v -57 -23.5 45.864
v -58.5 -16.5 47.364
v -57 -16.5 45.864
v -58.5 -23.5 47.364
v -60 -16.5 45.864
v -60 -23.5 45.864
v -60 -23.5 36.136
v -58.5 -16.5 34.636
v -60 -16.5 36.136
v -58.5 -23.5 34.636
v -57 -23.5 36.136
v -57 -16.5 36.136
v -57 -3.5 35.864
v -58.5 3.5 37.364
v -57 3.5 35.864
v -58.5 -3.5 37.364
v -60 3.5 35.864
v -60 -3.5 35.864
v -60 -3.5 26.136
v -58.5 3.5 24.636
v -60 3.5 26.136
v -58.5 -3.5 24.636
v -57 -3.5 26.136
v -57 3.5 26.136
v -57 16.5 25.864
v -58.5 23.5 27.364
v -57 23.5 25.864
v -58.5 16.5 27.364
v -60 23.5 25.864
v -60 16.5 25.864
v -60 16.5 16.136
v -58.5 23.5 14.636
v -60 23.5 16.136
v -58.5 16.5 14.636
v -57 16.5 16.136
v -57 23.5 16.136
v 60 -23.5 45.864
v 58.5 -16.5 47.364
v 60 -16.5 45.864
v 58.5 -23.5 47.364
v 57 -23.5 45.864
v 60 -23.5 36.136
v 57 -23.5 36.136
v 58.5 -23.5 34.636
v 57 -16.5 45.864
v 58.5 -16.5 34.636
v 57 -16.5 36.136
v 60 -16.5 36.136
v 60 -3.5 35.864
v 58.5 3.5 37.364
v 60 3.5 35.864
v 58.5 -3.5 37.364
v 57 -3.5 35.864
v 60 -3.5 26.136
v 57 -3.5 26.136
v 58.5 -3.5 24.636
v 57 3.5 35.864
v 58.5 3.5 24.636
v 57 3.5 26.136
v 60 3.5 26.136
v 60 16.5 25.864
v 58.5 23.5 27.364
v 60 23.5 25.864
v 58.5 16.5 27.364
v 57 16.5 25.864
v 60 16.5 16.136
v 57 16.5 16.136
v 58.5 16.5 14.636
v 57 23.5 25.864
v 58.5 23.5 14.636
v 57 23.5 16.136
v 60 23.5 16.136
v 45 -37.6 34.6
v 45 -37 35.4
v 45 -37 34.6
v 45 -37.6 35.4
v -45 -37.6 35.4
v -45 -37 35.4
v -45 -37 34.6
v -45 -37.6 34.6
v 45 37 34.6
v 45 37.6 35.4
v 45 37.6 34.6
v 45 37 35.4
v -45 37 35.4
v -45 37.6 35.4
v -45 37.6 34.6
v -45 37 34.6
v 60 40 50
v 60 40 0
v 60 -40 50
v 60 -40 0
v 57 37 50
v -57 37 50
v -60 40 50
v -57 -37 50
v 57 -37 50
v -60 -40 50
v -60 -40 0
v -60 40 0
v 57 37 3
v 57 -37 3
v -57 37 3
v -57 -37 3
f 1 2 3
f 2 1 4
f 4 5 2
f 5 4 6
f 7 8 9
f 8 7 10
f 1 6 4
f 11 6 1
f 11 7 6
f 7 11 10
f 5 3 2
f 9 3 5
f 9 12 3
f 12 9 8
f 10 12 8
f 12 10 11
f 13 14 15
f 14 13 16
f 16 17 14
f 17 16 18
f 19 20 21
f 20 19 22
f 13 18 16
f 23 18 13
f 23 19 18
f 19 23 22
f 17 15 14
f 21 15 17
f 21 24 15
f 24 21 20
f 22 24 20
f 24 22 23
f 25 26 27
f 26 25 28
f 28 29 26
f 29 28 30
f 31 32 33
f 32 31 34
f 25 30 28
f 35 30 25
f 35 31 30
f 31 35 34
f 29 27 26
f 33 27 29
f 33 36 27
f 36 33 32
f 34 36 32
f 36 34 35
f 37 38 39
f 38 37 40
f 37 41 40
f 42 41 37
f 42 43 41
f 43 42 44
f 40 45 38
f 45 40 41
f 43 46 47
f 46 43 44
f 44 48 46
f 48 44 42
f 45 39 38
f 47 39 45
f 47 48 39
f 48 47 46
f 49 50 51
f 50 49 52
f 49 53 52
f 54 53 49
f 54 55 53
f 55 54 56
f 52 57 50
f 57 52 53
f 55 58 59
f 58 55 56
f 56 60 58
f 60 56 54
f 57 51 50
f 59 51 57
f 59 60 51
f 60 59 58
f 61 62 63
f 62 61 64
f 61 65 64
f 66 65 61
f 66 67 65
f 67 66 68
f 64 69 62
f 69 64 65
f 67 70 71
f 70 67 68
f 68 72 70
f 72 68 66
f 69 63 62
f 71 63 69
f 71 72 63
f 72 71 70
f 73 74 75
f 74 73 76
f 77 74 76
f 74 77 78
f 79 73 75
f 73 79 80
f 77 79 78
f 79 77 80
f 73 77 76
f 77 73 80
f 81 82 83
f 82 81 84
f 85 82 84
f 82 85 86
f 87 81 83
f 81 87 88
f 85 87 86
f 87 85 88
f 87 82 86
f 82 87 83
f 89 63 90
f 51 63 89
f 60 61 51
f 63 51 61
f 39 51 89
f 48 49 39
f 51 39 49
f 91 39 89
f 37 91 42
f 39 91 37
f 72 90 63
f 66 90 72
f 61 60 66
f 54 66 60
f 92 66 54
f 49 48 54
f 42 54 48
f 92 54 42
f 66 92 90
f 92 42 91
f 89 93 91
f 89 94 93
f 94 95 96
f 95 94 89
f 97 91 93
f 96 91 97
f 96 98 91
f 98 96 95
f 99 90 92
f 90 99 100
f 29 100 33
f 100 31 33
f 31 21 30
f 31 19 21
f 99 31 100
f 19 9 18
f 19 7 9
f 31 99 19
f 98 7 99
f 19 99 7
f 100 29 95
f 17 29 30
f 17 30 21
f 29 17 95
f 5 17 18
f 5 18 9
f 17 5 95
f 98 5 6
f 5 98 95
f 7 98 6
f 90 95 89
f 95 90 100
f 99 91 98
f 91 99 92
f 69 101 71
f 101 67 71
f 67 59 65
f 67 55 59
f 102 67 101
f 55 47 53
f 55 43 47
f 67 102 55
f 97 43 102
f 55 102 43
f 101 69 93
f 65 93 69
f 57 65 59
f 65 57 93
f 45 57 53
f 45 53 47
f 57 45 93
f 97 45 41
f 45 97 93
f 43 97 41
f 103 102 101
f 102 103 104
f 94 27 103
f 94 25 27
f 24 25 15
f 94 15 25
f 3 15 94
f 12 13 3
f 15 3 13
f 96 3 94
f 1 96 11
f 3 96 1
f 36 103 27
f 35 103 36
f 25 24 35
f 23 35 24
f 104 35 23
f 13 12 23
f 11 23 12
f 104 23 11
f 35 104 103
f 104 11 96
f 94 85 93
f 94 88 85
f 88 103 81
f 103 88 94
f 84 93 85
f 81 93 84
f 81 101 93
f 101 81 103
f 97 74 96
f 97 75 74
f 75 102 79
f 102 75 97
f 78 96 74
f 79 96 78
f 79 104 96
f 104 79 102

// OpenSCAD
// Ultrasound vessel phantom mold box
// Open-top box with V-notches on both end walls at three depths. Rest
// latex or surgical tubing in the notches, pour ballistic gelatin, and
// the result is a vascular access phantom with vessels at 10, 20, and
// 30 mm below the surface: superficial IV, deep IV, and central-line
// depth in one block. Tie tubing off water-filled for realistic
// compressibility testing (veins collapse, "arteries" filled stiffer).
//
// Gelatin recipe that scans well: 100 g gelatin + 900 mL water + 20 g
// flour per batch (flour sets echogenicity).
//
// PLA or PETG, 3 perimeters, no supports, prints upright as oriented.
// All dimensions mm.

$fn = 64;

box_x  = 120;   // length (tubing axis)
box_y  = 80;
box_z  = 50;
wall   = 3;
rim_z  = 45;    // pour level: fill to the lowest notch shoulder

// vessel lanes: [y offset, notch floor height] -> depth below pour line
lanes = [[-20, 35], [0, 25], [20, 15]];

module vnotch() {
    rotate([45, 0, 0]) cube([wall + 4, 9, 9], center = true);
}

difference() {
    translate([-box_x/2, -box_y/2, 0]) cube([box_x, box_y, box_z]);
    translate([-box_x/2 + wall, -box_y/2 + wall, wall])
        cube([box_x - 2*wall, box_y - 2*wall, box_z]);
    // notches through both end walls
    for (end = [-1, 1], l = lanes)
        translate([end * (box_x/2 - wall/2), l[0], l[1] + 6])
            rotate([0, 0, 90]) vnotch();
    // pour-level line engraved inside the long walls
    for (side = [-1, 1])
        translate([0, side * (box_y/2 - wall), rim_z - 10])
            cube([box_x - 30, 1.2, 0.8], center = true);
}
